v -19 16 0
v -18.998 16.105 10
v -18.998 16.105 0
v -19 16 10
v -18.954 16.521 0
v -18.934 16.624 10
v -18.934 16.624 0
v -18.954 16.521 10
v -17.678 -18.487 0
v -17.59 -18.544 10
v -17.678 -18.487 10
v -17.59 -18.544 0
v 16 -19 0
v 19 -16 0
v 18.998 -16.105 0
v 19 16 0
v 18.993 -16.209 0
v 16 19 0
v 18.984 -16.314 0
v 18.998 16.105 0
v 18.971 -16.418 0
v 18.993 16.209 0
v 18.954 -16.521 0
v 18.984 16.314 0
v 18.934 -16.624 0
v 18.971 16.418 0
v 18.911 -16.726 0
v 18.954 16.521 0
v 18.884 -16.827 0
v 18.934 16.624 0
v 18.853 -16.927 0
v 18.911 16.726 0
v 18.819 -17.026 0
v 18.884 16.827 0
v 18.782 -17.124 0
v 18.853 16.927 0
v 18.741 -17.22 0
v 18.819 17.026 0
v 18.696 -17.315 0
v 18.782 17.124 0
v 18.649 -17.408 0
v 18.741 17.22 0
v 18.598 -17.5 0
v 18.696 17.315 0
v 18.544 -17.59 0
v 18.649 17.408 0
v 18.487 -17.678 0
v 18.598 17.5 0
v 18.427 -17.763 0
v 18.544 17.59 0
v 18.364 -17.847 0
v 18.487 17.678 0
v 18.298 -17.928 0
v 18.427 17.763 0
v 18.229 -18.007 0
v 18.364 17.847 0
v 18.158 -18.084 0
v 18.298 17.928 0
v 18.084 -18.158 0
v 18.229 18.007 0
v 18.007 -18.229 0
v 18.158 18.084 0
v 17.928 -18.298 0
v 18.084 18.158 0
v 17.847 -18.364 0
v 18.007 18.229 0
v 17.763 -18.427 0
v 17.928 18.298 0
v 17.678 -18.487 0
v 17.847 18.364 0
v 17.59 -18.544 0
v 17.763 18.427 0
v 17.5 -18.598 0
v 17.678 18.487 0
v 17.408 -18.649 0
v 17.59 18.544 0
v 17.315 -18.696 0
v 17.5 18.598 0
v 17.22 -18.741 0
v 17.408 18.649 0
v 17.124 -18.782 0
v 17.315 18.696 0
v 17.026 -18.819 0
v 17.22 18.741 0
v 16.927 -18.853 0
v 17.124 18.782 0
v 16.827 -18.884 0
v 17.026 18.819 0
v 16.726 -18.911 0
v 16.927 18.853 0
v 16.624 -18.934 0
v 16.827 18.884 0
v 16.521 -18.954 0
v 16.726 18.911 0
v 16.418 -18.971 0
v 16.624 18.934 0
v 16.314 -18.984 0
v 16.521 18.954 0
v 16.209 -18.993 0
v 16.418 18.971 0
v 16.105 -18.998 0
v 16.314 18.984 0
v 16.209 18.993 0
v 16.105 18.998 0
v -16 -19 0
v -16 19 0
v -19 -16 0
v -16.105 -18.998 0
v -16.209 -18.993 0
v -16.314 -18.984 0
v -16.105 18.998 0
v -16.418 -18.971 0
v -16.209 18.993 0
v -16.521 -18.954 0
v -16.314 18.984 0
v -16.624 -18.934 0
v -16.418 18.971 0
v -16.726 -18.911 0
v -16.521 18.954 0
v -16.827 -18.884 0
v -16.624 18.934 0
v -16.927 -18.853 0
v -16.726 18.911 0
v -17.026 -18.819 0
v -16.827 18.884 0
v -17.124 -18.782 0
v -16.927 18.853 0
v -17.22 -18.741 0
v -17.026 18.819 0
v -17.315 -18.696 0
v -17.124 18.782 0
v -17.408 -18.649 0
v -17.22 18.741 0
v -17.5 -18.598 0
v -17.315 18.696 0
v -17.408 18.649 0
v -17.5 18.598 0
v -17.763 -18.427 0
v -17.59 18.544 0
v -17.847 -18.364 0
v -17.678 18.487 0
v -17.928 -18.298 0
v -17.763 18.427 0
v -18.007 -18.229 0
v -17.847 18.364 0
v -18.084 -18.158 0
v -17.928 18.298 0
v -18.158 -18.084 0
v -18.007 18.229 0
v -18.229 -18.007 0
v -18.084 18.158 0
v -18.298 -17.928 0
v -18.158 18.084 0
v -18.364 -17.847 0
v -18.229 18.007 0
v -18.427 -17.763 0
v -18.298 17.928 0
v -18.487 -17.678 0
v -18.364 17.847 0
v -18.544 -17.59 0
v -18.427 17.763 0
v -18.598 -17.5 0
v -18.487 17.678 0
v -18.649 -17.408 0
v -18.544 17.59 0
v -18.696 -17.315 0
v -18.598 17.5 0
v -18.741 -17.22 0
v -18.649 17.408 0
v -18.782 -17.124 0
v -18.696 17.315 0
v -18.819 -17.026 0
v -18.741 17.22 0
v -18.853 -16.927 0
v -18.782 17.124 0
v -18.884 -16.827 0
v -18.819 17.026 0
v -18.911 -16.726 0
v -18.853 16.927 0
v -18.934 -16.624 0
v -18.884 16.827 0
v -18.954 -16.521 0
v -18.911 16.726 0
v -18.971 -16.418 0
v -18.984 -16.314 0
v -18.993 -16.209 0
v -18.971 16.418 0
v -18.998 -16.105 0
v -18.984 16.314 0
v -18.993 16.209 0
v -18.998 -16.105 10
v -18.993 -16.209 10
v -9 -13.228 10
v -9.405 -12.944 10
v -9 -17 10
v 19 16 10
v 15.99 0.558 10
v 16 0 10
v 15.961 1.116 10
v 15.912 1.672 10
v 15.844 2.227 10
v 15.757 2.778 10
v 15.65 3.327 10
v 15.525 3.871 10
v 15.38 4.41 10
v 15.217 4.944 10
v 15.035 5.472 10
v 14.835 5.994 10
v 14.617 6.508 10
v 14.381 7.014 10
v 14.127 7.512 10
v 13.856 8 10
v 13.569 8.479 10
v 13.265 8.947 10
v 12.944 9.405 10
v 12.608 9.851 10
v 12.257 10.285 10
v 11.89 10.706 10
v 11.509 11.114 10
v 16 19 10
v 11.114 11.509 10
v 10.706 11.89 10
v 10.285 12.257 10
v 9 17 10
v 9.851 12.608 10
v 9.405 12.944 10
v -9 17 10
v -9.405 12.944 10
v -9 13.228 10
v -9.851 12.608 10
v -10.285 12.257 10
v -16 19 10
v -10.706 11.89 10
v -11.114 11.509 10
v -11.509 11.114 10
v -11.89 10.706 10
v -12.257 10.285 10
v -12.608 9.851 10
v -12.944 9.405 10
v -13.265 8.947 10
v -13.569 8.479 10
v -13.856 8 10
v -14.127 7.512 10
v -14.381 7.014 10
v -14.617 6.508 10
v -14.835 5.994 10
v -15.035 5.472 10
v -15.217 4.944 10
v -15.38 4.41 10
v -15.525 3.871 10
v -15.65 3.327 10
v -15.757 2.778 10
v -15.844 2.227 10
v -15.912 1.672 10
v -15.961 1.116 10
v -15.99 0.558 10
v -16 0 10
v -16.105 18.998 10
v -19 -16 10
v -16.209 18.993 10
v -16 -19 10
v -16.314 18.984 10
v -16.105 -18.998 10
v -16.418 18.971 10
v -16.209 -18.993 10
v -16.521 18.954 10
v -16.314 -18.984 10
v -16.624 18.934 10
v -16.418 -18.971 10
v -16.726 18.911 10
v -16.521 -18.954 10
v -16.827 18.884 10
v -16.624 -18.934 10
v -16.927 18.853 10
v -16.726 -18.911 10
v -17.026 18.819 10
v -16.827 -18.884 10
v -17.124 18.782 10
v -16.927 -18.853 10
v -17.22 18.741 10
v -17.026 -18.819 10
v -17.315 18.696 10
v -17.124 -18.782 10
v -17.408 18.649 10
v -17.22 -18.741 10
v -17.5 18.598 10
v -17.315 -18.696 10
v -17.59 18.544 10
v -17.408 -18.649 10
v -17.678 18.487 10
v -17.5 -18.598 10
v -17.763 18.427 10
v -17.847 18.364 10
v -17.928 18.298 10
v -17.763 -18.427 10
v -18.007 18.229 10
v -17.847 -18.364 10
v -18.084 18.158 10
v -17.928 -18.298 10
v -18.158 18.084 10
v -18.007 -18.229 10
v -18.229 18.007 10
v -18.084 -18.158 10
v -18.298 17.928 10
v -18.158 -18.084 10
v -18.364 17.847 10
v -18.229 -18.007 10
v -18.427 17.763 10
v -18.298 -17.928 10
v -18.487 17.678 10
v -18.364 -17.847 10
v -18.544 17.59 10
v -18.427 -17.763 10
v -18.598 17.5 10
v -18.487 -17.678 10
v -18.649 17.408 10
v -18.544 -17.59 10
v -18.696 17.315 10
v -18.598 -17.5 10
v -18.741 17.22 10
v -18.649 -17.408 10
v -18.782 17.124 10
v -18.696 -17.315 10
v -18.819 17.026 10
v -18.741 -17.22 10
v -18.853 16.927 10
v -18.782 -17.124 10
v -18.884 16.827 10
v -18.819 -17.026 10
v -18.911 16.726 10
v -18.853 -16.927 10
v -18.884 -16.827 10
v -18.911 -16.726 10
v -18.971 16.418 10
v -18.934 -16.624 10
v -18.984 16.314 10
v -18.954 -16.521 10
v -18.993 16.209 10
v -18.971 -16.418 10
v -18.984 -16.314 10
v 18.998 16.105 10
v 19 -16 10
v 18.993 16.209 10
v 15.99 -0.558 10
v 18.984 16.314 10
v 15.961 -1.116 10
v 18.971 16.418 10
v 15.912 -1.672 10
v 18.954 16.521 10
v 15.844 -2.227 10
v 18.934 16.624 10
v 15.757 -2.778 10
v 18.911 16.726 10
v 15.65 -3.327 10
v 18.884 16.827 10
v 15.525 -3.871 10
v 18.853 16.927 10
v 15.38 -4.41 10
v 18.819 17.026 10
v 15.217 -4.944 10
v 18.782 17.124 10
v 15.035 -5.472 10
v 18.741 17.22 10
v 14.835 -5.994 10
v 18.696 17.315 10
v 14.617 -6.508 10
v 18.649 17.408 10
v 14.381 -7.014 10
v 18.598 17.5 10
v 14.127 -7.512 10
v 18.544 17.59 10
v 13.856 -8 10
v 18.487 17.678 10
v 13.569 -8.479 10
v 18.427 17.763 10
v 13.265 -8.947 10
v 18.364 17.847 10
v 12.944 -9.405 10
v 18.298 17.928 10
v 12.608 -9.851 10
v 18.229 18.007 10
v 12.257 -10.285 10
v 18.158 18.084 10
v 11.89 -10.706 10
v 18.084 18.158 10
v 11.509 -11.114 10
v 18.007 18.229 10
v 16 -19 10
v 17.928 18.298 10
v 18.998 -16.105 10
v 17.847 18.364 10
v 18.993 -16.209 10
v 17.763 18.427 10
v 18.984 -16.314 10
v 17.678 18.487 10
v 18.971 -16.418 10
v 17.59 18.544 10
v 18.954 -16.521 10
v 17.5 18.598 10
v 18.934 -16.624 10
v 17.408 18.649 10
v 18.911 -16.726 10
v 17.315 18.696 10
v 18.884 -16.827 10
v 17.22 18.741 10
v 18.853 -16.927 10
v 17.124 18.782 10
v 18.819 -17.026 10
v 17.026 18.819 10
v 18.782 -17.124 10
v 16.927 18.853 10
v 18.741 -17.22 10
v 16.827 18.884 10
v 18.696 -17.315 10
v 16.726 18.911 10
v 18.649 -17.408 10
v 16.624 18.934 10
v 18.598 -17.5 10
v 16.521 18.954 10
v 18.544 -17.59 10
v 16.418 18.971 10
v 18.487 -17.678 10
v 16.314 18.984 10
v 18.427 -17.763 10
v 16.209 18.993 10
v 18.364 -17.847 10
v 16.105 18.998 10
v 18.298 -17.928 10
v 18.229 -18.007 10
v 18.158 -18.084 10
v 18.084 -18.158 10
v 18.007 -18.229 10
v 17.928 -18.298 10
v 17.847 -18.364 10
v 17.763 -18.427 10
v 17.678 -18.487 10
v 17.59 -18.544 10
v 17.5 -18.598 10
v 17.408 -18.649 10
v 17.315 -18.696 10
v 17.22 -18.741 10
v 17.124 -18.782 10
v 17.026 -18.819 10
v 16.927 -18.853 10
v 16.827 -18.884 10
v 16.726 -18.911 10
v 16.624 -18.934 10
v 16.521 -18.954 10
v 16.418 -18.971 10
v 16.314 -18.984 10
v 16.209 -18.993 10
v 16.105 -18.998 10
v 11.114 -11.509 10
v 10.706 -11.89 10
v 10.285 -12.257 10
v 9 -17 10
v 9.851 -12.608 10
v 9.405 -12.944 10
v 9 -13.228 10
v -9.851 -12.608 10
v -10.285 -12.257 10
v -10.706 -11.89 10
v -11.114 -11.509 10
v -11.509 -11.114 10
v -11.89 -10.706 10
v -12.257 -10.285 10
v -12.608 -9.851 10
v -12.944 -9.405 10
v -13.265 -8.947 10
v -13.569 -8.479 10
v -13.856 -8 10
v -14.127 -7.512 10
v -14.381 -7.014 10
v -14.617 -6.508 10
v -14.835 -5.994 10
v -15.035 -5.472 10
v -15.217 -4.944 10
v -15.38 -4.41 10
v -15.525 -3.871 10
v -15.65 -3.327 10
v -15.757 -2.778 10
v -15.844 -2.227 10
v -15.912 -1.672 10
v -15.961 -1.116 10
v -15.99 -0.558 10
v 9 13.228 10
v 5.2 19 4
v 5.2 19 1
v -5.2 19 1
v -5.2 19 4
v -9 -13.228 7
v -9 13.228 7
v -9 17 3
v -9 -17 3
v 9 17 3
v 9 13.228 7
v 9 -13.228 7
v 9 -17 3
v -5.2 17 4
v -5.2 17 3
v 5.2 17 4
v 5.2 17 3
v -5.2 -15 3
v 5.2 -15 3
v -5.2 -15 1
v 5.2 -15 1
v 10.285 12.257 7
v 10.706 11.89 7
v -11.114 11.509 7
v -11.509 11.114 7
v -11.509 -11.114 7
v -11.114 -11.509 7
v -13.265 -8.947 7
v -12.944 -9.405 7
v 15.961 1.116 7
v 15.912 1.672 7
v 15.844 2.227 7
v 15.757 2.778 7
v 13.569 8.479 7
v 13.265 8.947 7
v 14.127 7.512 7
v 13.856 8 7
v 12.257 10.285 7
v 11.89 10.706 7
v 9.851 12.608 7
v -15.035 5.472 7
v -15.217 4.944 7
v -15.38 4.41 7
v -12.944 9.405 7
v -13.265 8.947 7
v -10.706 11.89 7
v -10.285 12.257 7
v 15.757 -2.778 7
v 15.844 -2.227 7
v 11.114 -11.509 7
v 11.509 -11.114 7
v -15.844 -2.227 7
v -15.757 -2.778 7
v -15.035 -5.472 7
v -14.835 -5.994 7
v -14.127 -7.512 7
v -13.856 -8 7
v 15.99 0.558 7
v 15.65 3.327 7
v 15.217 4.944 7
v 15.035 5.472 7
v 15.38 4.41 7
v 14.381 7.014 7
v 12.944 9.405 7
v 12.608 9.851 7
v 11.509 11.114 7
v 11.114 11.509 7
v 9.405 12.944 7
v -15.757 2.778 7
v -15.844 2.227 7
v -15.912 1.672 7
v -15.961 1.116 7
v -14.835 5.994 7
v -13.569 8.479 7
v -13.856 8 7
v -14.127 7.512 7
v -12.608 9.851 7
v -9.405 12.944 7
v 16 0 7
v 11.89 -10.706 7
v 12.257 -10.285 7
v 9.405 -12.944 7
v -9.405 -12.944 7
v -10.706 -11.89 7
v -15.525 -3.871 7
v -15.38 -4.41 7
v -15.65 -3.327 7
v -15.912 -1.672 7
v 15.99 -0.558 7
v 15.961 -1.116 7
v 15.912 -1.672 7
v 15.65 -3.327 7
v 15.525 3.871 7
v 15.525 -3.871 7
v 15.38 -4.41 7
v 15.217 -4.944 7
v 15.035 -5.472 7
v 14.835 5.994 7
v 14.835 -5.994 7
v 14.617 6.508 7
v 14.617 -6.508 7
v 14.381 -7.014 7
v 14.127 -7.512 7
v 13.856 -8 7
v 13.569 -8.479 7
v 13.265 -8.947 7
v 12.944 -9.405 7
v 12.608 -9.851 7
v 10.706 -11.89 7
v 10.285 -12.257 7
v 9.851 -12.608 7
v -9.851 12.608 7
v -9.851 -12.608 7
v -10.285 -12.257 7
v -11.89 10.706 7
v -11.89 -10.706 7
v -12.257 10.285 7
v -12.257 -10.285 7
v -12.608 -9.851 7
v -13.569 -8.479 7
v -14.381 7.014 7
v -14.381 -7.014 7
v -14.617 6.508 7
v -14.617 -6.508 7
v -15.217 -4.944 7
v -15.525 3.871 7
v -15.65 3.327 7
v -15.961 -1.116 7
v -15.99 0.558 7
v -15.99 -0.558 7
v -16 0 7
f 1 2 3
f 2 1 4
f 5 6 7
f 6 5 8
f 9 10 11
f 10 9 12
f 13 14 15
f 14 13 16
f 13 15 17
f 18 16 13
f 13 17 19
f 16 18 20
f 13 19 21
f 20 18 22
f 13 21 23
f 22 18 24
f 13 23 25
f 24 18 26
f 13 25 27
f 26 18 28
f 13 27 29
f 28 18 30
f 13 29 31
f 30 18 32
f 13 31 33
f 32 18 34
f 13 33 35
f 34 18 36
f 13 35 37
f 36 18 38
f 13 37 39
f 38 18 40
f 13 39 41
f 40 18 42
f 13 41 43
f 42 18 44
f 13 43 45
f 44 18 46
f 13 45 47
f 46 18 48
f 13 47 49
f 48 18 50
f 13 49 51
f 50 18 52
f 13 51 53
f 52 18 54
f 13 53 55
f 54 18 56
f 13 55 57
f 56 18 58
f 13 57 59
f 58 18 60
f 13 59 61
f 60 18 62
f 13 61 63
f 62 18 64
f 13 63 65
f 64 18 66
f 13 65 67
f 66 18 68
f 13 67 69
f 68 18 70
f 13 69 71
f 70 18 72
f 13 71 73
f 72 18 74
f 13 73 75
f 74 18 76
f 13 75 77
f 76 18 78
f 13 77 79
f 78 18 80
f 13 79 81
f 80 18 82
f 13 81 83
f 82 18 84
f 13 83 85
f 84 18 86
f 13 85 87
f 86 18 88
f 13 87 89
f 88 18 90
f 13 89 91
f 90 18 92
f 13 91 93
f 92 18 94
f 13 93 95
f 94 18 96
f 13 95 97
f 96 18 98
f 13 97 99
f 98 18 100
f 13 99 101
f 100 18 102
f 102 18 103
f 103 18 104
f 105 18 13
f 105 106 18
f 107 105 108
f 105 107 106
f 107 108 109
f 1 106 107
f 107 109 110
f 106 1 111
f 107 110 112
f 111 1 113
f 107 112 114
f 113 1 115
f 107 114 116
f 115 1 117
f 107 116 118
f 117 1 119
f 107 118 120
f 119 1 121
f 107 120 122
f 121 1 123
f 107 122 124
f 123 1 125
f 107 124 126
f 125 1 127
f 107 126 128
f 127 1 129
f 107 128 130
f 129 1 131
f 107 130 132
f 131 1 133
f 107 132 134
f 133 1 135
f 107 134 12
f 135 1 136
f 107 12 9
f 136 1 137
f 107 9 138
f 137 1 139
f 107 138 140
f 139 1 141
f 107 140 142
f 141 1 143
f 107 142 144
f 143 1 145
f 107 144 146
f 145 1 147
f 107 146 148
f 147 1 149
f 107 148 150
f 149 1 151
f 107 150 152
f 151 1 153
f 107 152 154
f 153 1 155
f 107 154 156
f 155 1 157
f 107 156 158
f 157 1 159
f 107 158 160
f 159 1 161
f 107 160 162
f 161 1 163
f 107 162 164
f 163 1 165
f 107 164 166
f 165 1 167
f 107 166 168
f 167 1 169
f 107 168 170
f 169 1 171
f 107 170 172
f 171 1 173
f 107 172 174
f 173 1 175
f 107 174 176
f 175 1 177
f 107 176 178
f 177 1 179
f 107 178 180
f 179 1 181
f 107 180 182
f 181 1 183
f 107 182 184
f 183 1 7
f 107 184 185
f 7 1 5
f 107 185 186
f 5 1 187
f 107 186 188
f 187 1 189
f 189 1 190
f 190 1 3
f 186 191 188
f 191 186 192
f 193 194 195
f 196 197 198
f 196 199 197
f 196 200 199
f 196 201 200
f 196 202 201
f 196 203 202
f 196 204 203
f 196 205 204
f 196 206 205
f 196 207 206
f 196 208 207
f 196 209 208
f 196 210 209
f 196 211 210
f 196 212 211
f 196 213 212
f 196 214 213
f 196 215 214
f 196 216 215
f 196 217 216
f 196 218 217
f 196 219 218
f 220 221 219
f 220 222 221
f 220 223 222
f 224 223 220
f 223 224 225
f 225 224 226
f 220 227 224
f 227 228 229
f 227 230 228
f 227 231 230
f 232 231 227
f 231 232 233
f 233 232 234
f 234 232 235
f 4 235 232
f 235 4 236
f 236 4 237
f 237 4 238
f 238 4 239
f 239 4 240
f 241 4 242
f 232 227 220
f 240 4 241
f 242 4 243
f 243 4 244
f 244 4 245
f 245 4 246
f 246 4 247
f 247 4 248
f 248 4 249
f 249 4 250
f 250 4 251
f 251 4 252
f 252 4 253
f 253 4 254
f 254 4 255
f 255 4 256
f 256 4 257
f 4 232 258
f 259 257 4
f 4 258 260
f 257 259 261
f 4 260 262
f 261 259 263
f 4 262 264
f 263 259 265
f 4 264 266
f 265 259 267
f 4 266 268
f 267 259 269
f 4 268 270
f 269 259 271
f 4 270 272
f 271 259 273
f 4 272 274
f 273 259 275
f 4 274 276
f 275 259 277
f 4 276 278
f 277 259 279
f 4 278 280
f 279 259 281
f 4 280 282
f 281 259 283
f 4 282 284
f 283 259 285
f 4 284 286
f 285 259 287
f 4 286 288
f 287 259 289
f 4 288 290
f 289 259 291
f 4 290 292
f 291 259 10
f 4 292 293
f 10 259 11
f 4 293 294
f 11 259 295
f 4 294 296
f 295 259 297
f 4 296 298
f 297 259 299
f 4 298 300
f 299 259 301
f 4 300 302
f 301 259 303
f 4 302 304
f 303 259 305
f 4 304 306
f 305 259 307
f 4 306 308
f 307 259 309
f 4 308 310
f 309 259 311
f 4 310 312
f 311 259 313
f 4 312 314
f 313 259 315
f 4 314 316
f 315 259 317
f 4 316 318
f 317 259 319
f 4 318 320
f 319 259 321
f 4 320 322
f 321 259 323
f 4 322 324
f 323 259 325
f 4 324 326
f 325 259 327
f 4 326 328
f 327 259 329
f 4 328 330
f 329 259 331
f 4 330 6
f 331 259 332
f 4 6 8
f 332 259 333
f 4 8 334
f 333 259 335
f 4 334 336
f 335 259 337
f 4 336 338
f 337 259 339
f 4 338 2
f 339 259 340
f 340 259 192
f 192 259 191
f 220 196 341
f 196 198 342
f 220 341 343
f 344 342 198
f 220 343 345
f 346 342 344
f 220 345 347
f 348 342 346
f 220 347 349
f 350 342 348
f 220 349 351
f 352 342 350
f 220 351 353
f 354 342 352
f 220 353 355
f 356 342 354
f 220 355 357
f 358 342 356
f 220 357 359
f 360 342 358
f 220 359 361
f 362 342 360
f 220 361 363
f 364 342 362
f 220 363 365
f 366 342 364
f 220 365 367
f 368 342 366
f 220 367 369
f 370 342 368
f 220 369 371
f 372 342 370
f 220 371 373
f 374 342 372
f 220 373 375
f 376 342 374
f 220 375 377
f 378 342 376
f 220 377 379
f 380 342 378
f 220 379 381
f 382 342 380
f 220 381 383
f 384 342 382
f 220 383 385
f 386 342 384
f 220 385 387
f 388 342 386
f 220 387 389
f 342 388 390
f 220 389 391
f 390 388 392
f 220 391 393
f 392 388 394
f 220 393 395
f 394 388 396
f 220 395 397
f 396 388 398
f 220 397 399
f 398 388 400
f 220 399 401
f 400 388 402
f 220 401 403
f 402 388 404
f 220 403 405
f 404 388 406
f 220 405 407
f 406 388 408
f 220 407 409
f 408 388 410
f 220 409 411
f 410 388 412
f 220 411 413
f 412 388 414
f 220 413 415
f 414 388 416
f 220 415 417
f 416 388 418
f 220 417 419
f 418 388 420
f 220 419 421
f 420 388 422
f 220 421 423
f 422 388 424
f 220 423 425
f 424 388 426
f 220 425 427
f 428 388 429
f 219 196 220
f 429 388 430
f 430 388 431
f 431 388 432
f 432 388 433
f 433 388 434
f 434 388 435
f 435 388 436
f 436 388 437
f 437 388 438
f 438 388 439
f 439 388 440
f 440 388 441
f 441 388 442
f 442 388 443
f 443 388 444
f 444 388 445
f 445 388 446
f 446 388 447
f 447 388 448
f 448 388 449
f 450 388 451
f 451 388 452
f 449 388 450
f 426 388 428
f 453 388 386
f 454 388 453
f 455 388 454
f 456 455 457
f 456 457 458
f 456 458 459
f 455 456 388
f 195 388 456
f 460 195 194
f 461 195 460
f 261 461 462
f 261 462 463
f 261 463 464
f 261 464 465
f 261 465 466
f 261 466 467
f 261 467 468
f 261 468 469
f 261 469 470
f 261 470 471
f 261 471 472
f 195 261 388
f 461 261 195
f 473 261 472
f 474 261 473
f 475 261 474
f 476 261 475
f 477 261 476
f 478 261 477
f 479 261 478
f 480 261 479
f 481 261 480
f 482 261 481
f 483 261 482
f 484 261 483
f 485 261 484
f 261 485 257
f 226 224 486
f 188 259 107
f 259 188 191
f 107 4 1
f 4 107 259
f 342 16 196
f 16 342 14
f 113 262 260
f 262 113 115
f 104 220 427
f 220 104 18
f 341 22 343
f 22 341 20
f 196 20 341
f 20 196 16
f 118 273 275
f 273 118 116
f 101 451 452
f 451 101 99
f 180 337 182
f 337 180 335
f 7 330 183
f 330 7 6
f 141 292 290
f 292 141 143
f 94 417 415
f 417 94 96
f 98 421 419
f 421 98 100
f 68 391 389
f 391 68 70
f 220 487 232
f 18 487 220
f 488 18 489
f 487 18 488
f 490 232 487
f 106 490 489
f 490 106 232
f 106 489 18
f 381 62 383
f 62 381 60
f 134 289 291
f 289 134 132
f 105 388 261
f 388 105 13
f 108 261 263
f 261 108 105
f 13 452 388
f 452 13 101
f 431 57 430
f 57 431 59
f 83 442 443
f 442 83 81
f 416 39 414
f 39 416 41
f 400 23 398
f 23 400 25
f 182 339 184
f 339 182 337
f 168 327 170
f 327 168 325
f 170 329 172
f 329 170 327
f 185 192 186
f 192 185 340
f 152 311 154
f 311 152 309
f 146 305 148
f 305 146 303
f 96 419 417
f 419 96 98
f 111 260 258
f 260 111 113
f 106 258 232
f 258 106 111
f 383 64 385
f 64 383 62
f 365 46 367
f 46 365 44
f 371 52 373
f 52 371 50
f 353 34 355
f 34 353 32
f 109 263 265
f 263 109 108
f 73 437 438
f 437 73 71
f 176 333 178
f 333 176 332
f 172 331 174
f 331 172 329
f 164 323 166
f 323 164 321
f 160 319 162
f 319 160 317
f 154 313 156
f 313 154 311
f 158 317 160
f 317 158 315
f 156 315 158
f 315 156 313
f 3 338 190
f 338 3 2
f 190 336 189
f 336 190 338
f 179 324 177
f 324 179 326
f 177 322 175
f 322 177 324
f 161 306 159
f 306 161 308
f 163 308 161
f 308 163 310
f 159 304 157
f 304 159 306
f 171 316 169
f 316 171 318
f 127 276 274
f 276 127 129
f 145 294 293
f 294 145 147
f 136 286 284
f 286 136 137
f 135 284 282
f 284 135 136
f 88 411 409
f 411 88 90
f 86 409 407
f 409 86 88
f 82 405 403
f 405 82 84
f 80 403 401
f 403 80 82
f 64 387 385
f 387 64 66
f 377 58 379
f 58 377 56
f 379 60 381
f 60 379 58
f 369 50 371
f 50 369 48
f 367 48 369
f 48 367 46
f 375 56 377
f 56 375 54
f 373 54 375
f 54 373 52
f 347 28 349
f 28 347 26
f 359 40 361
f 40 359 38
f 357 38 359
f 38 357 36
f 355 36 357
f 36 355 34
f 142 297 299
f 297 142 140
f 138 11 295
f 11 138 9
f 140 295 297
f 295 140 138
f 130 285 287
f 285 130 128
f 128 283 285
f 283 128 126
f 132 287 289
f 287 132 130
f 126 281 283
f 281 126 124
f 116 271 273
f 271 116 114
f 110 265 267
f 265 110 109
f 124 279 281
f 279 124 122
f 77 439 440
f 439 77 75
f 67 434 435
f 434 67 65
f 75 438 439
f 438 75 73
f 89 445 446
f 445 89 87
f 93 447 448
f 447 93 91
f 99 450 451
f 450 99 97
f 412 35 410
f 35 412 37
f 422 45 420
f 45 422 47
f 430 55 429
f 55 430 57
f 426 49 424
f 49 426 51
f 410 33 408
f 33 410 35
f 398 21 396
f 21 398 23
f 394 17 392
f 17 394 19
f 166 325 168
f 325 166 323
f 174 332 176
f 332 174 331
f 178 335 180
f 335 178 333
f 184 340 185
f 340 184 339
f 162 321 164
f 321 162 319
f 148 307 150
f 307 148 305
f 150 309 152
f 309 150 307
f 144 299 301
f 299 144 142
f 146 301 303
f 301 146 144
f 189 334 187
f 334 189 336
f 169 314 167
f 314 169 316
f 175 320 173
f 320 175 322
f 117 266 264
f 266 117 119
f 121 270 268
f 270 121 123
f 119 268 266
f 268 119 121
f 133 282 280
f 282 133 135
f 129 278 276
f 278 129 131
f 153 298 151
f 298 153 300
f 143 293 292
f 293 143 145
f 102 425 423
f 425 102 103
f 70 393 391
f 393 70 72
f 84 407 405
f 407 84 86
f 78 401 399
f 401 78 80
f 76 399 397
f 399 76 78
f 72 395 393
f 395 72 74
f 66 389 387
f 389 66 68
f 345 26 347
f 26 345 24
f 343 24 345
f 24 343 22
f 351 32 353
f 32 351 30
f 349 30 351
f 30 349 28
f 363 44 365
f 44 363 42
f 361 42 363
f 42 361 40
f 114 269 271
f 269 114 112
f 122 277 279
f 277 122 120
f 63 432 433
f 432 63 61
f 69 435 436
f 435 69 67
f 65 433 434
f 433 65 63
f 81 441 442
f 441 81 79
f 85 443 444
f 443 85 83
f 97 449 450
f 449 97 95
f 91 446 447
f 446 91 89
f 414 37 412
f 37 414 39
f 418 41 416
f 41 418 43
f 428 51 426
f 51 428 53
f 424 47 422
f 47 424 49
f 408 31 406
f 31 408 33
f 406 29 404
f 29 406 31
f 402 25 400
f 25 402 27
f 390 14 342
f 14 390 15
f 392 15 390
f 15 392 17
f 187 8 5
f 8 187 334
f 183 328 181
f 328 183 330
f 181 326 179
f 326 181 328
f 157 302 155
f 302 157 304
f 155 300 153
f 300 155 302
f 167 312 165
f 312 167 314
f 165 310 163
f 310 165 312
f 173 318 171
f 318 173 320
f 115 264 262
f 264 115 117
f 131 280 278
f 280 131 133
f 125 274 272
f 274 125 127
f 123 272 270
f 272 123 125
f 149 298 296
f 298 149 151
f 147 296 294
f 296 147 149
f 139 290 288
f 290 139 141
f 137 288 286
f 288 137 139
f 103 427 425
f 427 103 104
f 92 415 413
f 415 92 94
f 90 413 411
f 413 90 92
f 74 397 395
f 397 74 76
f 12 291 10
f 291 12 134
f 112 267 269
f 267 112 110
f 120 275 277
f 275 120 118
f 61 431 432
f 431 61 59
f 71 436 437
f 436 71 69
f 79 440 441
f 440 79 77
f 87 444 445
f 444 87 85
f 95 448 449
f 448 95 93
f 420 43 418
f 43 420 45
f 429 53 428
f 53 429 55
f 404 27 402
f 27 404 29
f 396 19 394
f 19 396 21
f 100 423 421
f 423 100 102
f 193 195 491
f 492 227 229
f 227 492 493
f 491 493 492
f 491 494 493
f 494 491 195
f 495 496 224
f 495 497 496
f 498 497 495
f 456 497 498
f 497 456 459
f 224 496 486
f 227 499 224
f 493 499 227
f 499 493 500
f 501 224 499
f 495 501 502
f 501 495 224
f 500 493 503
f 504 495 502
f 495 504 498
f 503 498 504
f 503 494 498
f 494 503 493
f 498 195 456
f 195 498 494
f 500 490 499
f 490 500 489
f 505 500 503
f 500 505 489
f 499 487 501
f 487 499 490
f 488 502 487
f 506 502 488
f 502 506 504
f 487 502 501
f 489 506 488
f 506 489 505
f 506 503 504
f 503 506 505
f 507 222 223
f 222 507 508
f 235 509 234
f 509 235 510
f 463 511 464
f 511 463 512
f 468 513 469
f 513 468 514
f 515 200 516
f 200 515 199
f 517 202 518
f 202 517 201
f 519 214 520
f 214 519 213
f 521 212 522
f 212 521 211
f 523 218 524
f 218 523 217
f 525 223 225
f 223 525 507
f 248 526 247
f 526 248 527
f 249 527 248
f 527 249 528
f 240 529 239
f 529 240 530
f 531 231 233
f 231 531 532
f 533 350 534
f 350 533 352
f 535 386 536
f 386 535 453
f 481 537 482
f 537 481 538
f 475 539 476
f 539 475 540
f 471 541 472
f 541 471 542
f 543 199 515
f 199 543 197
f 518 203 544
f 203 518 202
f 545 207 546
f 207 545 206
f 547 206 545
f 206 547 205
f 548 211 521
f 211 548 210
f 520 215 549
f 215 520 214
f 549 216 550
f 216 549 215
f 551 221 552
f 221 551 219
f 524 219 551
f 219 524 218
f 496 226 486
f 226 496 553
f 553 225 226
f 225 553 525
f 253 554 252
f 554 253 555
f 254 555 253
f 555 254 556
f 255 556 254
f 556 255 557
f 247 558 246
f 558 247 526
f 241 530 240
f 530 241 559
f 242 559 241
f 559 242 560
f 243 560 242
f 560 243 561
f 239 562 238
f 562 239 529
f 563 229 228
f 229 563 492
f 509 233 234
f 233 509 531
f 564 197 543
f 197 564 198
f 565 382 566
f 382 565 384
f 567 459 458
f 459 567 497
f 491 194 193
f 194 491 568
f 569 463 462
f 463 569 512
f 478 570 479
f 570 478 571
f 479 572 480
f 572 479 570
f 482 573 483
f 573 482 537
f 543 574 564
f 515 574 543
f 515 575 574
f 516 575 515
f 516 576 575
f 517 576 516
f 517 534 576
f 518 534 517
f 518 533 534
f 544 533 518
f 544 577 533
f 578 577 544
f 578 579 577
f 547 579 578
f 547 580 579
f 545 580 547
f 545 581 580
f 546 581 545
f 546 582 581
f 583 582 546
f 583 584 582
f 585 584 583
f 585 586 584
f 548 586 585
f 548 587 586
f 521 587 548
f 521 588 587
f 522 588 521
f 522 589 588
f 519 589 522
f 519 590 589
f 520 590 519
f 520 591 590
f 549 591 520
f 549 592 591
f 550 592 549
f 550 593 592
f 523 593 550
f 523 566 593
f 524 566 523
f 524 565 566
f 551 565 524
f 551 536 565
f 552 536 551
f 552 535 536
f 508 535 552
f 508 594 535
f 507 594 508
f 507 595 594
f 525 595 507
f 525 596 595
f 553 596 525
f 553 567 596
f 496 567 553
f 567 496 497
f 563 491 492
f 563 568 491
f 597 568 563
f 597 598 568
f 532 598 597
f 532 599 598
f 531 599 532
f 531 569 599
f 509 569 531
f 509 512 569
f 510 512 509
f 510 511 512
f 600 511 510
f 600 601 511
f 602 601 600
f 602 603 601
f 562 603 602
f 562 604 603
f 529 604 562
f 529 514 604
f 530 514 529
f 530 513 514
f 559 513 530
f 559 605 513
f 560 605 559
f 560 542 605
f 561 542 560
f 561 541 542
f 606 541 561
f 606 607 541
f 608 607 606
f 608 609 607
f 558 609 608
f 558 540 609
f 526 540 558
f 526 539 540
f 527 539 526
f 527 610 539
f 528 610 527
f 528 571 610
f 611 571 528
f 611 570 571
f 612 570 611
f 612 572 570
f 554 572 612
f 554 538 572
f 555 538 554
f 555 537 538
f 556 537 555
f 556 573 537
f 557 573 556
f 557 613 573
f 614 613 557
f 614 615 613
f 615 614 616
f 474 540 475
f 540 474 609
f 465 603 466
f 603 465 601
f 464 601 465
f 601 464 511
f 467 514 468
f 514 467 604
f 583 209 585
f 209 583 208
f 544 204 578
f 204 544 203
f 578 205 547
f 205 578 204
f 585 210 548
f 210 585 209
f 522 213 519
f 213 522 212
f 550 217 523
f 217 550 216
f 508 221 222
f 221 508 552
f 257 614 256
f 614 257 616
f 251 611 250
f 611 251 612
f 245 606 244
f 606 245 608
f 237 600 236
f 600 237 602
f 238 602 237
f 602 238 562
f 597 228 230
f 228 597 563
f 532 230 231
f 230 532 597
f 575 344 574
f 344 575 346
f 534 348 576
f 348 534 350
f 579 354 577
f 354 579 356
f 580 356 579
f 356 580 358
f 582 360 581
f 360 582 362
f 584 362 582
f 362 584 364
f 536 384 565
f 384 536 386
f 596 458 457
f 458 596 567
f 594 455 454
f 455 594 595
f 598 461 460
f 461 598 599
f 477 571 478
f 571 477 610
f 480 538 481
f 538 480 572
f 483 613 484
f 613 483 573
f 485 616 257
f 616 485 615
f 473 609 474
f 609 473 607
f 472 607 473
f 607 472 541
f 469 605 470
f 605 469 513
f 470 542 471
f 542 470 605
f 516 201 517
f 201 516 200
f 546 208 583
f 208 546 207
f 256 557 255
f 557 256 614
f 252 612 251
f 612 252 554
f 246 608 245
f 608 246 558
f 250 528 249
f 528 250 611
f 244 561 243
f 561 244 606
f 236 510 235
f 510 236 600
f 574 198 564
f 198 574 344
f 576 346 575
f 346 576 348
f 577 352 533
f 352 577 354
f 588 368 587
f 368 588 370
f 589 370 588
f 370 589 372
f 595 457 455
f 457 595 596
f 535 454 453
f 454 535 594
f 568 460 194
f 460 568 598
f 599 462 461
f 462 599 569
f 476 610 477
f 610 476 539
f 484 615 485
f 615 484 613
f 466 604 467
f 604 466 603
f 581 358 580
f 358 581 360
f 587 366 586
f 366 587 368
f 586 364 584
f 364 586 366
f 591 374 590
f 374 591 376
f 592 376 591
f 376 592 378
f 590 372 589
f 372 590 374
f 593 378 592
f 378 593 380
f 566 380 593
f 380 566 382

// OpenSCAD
$fn=180;

base_width=38;
base_deep=10;

board_width=18;
board_height=34;
board_deep=7;

pinstage_width=10.4;
pinstage_height=34;
pinstage_deep=3;
pinstage_shift=2;

leds_radius=32;
leds_deep=3;

mr=3;

difference()
{
    translate([-base_width/2+mr,-base_width/2+mr,0.5])
    {
        minkowski()
        {
            cube([base_width-mr*2, base_width-mr*2, base_deep-1]);
            cylinder(r=mr, h=1, center=true);
        }
    }

//    translate([-base_width/2,-base_width/2,0])
//    {
//        cube([base_width, base_width, base_deep]);
//    }
    
    translate([-board_width/2,-board_height/2, base_deep-board_deep])
    {
        cube([board_width, board_height, board_deep]);
    }

    translate([-pinstage_width/2, -pinstage_height/2+pinstage_shift, base_deep-board_deep-pinstage_deep+1])
    {
        cube([pinstage_width, pinstage_height, pinstage_deep]);
    }

    translate([0,0,base_deep-leds_deep])
    {
        cylinder(h=leds_deep, d=leds_radius);
    }
}
